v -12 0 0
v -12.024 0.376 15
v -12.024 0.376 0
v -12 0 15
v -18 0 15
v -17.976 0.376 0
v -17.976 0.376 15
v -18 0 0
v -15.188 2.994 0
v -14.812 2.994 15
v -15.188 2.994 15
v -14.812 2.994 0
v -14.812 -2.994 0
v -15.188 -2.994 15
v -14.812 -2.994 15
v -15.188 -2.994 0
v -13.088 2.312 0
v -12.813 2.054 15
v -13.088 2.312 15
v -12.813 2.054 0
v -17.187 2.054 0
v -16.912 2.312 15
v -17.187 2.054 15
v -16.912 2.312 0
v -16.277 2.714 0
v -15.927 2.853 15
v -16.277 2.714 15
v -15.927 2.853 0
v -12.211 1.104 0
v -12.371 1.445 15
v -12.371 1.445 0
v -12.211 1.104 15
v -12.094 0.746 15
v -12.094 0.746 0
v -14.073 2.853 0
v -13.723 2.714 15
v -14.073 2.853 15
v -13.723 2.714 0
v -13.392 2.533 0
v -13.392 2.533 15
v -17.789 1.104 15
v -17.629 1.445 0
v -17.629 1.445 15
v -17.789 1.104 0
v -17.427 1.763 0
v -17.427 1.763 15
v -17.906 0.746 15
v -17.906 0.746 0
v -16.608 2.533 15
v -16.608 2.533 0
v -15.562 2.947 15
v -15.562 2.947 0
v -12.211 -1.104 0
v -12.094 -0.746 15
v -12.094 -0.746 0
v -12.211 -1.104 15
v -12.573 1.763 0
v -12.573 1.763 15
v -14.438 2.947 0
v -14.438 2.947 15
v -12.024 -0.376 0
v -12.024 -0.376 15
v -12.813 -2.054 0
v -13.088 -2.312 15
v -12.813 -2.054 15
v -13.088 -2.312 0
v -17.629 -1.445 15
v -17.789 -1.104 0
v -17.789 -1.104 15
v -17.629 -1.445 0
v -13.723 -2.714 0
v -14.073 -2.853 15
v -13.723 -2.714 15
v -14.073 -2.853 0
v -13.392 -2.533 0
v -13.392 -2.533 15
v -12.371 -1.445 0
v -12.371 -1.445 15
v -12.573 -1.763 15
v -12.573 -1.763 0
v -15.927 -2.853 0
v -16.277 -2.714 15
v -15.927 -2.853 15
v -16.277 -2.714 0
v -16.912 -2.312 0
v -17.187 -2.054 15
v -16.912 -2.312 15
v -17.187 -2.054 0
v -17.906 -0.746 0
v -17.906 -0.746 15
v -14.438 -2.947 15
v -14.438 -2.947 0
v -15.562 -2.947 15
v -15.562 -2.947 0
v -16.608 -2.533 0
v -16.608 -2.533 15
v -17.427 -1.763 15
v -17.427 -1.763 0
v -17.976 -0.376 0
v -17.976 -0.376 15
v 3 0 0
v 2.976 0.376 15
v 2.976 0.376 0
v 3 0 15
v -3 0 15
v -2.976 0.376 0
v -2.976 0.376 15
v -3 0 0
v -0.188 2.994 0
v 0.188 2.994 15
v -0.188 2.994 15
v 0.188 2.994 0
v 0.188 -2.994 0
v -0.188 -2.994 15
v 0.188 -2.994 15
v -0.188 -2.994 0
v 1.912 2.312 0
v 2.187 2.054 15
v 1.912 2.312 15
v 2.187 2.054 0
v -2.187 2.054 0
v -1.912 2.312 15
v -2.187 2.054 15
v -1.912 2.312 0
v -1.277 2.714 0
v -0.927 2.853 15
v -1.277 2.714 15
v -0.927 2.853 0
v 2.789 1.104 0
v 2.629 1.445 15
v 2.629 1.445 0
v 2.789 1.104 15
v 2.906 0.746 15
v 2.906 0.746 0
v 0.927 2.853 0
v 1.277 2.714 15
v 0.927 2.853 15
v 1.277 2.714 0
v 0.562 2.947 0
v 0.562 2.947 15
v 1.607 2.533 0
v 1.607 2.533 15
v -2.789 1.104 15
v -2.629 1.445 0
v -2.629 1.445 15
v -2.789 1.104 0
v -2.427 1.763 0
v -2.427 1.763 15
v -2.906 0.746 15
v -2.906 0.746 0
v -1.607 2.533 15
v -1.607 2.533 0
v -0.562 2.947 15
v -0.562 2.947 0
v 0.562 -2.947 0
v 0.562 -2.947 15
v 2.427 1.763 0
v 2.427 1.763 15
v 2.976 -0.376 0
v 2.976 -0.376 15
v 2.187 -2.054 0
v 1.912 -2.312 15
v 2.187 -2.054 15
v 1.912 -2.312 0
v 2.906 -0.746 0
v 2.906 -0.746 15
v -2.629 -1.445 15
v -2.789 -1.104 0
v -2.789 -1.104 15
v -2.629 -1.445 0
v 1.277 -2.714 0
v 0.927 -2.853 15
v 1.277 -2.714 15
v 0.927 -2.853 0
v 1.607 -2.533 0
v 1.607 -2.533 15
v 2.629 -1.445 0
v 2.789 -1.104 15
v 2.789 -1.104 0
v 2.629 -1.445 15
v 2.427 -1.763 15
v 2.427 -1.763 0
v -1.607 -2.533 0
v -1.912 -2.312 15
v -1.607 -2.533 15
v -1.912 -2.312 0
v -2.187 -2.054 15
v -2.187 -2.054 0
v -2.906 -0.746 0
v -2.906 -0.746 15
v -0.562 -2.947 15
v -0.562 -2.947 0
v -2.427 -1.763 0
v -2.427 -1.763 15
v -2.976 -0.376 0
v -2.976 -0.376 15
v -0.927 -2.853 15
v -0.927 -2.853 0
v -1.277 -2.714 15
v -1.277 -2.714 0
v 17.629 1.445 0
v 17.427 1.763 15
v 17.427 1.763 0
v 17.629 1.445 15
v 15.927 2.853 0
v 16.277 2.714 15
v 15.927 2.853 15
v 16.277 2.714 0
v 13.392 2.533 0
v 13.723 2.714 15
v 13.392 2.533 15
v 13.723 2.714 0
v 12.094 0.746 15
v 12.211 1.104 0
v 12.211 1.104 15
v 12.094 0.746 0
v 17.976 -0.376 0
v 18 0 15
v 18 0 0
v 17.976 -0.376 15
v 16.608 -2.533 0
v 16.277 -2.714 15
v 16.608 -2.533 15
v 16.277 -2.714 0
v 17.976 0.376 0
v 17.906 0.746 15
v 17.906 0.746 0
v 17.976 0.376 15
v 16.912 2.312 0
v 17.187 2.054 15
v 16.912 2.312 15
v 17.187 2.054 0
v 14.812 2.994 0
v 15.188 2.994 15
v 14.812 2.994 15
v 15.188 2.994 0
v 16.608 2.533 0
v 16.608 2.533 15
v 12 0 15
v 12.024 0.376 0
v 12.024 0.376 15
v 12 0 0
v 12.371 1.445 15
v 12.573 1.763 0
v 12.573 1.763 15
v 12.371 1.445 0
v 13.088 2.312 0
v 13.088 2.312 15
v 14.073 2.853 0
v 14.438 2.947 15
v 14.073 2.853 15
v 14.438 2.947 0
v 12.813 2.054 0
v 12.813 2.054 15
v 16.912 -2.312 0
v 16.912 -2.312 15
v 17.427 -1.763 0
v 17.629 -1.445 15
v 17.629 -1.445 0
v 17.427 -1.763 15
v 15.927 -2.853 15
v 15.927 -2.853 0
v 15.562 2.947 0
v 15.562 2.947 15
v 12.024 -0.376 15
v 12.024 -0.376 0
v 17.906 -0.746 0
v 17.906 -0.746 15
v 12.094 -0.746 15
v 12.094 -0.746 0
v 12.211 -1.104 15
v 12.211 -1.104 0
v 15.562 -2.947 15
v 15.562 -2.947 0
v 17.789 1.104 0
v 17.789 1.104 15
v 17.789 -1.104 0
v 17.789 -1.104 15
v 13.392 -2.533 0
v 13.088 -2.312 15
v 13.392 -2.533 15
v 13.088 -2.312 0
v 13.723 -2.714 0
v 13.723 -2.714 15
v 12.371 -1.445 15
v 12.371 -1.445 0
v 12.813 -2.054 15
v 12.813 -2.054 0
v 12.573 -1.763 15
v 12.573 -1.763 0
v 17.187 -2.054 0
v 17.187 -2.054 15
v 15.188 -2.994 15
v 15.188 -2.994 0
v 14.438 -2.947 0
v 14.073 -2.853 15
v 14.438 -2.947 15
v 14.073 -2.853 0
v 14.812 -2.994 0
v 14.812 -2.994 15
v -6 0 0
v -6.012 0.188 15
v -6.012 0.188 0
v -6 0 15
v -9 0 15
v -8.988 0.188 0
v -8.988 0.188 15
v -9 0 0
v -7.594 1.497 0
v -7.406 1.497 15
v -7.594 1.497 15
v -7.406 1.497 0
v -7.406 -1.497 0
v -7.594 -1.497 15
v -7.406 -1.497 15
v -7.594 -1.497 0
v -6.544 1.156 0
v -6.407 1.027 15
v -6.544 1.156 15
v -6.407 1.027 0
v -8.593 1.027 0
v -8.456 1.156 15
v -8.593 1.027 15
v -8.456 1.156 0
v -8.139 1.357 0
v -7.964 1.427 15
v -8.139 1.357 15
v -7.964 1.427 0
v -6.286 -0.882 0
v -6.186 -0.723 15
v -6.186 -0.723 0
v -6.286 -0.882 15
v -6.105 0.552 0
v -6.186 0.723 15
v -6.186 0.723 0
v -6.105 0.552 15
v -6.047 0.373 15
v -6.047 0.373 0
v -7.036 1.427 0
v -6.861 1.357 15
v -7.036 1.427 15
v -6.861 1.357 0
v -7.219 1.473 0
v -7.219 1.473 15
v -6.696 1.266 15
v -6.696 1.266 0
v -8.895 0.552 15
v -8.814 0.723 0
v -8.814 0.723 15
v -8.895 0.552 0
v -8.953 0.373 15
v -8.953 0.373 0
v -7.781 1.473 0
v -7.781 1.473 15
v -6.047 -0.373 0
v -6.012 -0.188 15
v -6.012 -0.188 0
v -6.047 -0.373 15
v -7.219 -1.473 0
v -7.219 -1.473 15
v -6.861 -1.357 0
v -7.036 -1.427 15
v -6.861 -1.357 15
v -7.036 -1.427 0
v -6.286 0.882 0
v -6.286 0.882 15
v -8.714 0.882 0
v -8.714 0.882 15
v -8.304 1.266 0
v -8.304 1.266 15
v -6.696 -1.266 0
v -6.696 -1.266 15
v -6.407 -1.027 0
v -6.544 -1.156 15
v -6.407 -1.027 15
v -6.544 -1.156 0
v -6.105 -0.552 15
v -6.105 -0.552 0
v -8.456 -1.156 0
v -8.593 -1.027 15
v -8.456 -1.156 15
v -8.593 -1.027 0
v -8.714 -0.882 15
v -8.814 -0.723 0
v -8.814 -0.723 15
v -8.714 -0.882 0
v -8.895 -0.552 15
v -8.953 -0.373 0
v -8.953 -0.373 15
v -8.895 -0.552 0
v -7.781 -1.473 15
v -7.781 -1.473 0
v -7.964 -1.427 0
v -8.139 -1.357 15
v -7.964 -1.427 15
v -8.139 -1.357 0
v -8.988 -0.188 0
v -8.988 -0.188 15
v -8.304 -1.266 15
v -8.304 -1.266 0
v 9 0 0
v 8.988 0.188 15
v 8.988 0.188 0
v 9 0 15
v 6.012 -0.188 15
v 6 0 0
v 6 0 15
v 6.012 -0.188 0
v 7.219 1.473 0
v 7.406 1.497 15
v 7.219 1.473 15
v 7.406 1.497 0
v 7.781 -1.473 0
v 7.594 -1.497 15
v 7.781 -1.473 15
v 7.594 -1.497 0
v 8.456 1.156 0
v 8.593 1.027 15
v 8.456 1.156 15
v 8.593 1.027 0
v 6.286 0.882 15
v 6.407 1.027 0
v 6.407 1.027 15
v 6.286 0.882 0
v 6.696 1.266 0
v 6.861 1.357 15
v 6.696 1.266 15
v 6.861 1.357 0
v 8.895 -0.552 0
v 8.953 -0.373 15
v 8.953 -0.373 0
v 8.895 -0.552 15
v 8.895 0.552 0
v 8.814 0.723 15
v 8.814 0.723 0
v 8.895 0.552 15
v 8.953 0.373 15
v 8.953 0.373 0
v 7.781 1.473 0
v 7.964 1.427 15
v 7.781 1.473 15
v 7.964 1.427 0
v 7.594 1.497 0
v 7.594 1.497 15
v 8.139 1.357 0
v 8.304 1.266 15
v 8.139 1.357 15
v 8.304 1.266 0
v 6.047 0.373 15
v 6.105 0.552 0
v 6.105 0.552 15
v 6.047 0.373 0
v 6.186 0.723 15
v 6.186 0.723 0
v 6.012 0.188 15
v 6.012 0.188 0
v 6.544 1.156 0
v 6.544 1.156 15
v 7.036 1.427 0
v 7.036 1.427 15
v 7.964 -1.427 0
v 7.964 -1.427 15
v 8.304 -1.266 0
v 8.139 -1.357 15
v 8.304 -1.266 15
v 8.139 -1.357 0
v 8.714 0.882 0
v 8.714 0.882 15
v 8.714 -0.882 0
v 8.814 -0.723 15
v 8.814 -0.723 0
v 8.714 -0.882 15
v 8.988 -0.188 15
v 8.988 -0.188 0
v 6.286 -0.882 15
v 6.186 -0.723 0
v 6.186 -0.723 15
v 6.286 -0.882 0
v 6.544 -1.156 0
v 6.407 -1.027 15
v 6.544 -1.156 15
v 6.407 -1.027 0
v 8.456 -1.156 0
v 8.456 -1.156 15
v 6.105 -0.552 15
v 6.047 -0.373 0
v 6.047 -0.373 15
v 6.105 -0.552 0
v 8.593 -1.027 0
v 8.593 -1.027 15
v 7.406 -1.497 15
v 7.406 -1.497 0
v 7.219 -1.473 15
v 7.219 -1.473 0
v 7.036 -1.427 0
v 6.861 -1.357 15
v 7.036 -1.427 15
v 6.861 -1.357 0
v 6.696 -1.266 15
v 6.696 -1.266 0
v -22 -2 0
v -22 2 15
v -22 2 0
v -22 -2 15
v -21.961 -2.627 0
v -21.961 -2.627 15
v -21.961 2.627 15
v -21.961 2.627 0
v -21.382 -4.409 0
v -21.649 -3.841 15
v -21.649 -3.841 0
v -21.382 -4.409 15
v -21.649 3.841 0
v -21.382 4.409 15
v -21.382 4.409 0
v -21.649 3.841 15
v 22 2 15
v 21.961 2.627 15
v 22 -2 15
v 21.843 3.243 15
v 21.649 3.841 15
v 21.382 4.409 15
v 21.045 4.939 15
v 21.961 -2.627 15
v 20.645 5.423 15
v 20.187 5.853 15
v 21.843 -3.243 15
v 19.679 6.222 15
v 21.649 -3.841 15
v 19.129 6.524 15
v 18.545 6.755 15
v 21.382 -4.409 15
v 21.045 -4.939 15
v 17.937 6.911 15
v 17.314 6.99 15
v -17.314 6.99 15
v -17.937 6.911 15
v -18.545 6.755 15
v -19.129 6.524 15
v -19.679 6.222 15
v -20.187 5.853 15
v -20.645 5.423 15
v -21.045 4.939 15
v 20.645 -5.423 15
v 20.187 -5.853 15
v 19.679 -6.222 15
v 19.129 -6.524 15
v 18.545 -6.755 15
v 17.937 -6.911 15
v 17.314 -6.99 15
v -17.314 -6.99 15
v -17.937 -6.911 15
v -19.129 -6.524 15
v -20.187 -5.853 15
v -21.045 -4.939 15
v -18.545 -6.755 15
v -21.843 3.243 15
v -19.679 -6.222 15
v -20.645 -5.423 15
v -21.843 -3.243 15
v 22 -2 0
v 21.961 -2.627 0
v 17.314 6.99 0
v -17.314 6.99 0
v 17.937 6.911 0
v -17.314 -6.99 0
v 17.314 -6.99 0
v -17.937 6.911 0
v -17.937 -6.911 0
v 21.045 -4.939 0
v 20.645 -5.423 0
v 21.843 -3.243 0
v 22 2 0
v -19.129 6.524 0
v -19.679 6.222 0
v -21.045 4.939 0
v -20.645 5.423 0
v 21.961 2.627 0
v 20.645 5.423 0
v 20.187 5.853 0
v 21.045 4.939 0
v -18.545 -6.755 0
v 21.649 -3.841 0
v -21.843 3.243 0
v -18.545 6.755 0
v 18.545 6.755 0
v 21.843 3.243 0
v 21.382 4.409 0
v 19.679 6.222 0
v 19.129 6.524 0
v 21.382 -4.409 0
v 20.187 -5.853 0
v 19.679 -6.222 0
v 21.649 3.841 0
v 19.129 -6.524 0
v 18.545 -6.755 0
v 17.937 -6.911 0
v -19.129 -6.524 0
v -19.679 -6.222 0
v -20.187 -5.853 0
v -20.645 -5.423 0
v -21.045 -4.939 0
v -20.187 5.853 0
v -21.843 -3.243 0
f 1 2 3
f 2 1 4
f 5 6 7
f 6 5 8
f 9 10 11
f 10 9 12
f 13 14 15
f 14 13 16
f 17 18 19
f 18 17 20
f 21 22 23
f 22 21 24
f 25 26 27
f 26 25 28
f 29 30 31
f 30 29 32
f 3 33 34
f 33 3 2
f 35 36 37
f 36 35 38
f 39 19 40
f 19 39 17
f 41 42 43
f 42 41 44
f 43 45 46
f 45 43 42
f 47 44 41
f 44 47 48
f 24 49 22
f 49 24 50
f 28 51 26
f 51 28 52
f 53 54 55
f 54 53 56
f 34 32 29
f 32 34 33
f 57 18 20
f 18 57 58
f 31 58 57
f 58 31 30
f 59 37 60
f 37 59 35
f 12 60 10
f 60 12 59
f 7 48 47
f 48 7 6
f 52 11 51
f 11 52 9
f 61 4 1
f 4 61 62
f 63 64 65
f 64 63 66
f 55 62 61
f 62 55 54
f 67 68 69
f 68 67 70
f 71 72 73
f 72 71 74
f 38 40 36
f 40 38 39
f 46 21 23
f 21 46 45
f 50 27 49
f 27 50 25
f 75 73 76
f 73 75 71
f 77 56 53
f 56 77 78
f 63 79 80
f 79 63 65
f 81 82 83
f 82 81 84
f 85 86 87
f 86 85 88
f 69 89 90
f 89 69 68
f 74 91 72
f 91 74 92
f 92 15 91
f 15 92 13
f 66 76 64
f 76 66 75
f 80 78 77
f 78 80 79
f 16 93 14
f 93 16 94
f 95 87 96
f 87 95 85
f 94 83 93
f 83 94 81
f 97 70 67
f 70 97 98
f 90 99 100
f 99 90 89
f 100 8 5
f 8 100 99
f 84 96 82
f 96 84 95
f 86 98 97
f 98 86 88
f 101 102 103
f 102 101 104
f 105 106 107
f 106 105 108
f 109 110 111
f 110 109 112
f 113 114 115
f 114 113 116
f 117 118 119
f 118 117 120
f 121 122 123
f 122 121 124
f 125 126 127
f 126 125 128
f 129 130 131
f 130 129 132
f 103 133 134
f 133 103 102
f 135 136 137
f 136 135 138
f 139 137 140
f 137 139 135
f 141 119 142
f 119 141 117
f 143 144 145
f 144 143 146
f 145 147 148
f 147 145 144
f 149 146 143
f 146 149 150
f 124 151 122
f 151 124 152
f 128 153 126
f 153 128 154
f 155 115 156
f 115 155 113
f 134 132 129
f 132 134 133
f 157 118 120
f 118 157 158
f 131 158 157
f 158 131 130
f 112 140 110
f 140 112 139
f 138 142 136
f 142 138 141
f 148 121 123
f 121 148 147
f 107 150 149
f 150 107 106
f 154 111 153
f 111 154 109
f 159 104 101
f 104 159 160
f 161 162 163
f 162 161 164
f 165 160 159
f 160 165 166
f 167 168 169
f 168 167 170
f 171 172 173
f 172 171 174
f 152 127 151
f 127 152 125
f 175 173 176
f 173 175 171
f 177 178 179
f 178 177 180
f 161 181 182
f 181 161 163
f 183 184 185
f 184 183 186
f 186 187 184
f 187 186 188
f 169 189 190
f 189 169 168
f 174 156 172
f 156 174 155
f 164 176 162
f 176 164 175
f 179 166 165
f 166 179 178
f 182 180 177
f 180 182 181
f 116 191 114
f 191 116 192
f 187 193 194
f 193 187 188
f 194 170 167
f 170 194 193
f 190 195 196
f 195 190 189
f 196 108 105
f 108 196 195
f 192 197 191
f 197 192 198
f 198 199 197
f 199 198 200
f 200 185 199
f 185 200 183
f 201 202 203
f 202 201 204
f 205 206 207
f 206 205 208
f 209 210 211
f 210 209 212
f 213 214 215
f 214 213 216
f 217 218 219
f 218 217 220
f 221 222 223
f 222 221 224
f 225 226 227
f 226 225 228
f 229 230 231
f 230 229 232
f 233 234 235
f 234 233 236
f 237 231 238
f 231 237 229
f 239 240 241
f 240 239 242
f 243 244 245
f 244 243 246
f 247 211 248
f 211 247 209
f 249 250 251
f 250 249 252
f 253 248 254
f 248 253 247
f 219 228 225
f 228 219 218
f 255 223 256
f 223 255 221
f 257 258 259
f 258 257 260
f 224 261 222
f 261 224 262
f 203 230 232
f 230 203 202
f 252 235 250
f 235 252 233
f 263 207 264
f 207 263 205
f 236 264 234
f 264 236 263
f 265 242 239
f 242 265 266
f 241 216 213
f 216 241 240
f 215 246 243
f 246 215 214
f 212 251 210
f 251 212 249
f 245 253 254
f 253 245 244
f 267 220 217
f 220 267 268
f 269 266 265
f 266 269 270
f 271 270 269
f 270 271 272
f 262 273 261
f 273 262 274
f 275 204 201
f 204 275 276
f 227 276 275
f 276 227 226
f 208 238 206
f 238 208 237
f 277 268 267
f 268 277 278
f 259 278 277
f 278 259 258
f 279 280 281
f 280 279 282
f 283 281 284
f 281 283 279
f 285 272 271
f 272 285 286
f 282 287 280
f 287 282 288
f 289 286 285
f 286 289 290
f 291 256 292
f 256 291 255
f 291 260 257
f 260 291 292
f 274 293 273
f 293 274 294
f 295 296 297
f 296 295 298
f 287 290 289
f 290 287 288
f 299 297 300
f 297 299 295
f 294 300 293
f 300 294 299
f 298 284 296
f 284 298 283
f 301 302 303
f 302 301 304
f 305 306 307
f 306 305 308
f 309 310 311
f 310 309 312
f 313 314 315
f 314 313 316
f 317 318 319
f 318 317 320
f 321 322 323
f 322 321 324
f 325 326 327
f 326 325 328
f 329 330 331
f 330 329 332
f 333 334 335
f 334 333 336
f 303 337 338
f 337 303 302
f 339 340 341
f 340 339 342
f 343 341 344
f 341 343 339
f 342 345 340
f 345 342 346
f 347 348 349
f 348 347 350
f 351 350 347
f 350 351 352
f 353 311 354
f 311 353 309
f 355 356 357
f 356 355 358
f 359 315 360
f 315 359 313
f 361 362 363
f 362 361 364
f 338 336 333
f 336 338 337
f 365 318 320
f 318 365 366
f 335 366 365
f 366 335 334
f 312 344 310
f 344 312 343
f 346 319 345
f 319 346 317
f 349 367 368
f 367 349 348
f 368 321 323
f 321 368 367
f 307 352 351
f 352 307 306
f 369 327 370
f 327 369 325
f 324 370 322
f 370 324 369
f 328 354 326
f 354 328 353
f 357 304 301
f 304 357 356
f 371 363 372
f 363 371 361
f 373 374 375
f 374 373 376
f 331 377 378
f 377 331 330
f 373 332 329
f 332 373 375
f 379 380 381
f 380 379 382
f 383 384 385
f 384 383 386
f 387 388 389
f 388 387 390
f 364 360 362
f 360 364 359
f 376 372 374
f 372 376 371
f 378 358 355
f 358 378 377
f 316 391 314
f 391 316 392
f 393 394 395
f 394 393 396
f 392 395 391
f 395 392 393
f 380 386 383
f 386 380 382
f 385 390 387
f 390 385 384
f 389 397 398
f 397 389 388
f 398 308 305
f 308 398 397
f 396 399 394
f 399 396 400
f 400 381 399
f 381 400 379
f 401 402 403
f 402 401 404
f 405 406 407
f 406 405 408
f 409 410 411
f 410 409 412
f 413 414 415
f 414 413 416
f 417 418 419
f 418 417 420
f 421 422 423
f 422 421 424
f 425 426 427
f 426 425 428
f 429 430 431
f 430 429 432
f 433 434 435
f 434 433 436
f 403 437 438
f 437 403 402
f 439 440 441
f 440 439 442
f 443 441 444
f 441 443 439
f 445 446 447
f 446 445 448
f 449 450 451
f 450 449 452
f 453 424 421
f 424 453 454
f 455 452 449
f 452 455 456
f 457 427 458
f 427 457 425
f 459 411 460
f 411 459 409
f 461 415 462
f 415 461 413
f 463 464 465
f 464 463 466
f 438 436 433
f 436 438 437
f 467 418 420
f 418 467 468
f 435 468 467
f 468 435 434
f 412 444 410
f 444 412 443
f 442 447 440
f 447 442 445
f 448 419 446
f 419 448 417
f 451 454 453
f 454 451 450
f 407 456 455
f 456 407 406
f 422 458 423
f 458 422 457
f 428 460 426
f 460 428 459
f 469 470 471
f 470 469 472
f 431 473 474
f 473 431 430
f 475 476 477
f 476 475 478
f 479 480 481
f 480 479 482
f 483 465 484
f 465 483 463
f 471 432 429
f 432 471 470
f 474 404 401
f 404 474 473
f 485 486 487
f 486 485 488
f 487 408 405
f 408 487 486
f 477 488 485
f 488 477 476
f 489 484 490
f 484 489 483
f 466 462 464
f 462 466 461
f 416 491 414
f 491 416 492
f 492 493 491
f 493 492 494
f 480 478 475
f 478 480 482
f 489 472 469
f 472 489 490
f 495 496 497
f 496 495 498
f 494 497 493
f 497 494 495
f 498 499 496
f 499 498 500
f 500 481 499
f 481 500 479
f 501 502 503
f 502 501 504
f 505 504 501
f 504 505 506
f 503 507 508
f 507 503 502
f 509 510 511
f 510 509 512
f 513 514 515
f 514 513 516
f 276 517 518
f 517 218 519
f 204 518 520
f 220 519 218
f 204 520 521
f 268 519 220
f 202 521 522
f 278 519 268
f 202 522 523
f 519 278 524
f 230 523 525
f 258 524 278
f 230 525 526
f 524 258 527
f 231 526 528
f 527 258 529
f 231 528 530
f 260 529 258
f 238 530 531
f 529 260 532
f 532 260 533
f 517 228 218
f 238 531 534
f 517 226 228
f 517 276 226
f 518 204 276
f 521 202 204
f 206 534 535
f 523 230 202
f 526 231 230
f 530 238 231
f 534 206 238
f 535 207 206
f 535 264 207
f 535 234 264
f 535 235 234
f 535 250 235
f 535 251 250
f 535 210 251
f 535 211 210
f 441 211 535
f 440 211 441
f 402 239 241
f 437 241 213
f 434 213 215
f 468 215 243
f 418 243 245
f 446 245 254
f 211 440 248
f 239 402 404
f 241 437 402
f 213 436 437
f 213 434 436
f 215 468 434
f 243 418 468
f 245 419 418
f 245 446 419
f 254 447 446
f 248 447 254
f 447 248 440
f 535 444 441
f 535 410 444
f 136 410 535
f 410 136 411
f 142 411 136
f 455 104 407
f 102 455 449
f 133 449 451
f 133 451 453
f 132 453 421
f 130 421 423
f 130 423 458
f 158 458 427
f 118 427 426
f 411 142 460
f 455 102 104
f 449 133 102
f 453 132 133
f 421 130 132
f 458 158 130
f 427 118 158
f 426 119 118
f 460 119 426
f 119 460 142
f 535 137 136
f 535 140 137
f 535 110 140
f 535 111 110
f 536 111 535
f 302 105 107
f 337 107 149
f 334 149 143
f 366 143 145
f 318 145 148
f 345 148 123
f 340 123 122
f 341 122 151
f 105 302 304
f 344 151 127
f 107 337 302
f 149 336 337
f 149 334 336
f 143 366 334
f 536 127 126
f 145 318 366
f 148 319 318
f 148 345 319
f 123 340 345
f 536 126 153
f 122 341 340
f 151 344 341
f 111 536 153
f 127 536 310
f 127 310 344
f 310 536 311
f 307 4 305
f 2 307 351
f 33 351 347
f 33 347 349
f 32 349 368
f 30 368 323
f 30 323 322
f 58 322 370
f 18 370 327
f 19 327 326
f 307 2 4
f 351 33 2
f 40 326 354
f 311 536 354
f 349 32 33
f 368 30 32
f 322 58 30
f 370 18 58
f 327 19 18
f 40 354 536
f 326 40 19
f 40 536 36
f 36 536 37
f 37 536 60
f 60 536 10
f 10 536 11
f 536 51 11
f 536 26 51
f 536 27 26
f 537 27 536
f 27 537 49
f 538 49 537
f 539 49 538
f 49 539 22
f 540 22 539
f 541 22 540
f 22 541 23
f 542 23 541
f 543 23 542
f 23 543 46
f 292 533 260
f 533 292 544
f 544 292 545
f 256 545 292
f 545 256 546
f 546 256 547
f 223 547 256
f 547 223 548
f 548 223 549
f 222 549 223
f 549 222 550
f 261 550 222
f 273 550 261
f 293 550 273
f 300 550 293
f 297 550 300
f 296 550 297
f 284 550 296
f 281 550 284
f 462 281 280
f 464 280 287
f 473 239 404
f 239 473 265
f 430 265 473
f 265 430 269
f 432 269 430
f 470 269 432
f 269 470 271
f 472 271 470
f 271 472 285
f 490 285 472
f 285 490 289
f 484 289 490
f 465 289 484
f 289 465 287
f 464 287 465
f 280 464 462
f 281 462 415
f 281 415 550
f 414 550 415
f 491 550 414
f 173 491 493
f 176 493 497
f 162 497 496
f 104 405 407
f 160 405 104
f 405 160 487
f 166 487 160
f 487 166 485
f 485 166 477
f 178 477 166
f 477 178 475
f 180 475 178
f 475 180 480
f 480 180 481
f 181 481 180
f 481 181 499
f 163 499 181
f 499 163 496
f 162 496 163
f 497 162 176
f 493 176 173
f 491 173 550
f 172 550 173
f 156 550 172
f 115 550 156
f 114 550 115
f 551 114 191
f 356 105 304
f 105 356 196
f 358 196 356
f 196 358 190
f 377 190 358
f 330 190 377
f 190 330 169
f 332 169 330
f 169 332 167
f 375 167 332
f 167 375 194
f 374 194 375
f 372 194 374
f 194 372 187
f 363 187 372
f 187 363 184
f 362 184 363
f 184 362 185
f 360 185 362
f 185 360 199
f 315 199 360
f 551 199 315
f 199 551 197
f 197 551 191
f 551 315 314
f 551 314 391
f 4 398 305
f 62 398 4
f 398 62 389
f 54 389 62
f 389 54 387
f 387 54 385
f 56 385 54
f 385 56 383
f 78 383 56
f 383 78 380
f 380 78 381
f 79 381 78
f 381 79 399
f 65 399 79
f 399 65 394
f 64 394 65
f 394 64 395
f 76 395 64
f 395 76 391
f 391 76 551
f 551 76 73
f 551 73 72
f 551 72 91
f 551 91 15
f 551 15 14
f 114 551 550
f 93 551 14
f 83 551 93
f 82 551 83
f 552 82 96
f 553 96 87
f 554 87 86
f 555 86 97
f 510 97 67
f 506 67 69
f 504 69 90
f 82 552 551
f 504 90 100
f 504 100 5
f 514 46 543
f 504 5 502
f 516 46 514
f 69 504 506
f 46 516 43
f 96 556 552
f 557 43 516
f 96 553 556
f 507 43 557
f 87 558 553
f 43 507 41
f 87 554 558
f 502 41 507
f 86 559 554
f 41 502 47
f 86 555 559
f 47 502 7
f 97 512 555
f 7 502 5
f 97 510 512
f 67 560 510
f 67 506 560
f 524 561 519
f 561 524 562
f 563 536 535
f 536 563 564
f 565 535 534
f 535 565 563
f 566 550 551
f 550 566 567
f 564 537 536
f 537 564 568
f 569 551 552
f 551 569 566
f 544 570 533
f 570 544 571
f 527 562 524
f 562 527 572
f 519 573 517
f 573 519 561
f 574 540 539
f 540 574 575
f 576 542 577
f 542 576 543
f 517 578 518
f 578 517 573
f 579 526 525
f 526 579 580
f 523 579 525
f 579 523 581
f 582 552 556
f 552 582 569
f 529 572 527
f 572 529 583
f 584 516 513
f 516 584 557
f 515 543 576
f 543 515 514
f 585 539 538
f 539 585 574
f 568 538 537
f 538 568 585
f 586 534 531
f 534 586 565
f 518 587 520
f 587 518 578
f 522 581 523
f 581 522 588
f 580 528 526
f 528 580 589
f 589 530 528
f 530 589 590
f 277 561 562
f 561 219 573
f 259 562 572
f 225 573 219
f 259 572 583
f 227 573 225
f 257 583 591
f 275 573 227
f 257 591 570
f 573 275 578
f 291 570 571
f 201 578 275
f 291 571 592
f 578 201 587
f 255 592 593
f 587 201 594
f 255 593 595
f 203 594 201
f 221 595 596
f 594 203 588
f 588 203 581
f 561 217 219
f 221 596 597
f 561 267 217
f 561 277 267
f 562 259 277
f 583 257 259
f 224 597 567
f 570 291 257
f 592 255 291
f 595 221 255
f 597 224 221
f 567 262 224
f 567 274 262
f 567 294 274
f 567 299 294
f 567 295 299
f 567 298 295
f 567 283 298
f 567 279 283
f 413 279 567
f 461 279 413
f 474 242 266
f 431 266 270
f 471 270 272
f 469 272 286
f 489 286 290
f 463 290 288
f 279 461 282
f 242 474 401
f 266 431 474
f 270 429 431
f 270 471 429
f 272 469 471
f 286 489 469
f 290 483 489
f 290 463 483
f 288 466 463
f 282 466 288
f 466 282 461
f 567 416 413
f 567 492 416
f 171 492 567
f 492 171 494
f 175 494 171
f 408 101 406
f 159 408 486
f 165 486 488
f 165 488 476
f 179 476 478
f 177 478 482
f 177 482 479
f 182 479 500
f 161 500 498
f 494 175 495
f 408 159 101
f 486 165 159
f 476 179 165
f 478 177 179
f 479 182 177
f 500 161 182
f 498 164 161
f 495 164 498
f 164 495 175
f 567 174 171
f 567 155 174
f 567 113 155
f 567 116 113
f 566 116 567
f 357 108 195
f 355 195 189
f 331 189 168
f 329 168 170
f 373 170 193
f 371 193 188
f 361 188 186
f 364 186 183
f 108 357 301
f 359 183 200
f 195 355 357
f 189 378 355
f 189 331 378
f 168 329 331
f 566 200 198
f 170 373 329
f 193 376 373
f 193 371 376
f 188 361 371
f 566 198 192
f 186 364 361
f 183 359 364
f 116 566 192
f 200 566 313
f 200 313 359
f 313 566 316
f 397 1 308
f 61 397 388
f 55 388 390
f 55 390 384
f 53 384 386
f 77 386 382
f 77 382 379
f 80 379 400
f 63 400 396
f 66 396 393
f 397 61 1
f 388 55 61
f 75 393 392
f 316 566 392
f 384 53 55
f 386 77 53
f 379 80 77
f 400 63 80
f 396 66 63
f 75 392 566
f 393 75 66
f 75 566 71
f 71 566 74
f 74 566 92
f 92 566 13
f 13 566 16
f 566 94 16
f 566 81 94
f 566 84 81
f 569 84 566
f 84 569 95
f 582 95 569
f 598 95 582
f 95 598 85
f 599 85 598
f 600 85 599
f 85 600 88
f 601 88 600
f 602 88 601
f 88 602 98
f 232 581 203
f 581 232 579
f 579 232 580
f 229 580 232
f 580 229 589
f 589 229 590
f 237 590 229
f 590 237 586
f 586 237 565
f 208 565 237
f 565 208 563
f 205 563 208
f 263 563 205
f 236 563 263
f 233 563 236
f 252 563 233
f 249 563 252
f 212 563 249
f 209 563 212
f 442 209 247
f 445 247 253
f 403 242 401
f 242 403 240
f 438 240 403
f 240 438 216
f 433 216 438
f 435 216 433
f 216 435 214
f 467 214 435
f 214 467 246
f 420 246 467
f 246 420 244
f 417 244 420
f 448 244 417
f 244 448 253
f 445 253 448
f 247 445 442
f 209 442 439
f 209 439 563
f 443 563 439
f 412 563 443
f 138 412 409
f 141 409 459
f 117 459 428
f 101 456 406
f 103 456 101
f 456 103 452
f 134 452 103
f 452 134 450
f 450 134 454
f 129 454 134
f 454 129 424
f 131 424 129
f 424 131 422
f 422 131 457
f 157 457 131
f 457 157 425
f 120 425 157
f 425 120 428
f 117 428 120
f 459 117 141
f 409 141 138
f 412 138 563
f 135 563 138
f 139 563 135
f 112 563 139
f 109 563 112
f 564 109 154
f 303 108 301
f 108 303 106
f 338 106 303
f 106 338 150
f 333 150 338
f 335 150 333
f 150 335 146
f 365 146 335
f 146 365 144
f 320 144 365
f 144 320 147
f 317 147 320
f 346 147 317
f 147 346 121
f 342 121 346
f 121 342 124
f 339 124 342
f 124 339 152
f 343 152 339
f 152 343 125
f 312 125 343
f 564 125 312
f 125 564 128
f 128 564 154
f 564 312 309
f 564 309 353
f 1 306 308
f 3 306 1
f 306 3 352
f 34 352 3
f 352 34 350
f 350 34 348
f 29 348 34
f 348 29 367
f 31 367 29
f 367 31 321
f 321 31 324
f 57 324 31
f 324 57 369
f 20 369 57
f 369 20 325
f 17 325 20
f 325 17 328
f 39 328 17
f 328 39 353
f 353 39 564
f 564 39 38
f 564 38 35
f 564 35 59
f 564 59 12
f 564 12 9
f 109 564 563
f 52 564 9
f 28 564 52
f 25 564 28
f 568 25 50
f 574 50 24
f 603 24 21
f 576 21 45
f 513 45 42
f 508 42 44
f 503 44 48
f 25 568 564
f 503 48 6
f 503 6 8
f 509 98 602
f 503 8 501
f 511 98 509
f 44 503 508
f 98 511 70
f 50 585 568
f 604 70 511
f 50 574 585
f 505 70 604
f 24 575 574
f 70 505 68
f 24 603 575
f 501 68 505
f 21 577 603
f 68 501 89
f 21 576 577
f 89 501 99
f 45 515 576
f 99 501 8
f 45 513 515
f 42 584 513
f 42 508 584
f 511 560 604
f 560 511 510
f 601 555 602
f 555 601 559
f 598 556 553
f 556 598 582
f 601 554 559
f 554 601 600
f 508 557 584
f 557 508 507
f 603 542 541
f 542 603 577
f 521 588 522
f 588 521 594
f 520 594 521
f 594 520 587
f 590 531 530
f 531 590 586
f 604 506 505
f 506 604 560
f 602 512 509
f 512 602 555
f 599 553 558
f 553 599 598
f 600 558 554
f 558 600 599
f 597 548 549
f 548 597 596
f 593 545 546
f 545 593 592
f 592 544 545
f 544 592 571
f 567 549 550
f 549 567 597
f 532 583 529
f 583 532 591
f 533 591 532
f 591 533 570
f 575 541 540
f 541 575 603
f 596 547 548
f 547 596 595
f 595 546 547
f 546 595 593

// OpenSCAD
$fn = 50;


difference() {
	union() {
		hull() {
			translate(v = [-17.0000000000, 2.0000000000, 0]) {
				cylinder(h = 15, r = 5);
			}
			translate(v = [17.0000000000, 2.0000000000, 0]) {
				cylinder(h = 15, r = 5);
			}
			translate(v = [-17.0000000000, -2.0000000000, 0]) {
				cylinder(h = 15, r = 5);
			}
			translate(v = [17.0000000000, -2.0000000000, 0]) {
				cylinder(h = 15, r = 5);
			}
		}
	}
	union() {
		translate(v = [-15.0000000000, 0.0000000000, 0]) {
			translate(v = [0, 0, -100]) {
				cylinder(h = 200, r = 3.0000000000);
			}
		}
		translate(v = [0, 0, -100]) {
			cylinder(h = 200, r = 3.0000000000);
		}
		translate(v = [15.0000000000, 0.0000000000, 0]) {
			translate(v = [0, 0, -100]) {
				cylinder(h = 200, r = 3.0000000000);
			}
		}
		translate(v = [-15.0000000000, 0.0000000000, 0]) {
			translate(v = [0, 0, -100]) {
				cylinder(h = 200, r = 1.5000000000);
			}
		}
		translate(v = [-7.5000000000, 0.0000000000, 0]) {
			translate(v = [0, 0, -100]) {
				cylinder(h = 200, r = 1.5000000000);
			}
		}
		translate(v = [0, 0, -100]) {
			cylinder(h = 200, r = 1.5000000000);
		}
		translate(v = [7.5000000000, 0.0000000000, 0]) {
			translate(v = [0, 0, -100]) {
				cylinder(h = 200, r = 1.5000000000);
			}
		}
		translate(v = [15.0000000000, 0.0000000000, 0]) {
			translate(v = [0, 0, -100]) {
				cylinder(h = 200, r = 1.5000000000);
			}
		}
	}
}
